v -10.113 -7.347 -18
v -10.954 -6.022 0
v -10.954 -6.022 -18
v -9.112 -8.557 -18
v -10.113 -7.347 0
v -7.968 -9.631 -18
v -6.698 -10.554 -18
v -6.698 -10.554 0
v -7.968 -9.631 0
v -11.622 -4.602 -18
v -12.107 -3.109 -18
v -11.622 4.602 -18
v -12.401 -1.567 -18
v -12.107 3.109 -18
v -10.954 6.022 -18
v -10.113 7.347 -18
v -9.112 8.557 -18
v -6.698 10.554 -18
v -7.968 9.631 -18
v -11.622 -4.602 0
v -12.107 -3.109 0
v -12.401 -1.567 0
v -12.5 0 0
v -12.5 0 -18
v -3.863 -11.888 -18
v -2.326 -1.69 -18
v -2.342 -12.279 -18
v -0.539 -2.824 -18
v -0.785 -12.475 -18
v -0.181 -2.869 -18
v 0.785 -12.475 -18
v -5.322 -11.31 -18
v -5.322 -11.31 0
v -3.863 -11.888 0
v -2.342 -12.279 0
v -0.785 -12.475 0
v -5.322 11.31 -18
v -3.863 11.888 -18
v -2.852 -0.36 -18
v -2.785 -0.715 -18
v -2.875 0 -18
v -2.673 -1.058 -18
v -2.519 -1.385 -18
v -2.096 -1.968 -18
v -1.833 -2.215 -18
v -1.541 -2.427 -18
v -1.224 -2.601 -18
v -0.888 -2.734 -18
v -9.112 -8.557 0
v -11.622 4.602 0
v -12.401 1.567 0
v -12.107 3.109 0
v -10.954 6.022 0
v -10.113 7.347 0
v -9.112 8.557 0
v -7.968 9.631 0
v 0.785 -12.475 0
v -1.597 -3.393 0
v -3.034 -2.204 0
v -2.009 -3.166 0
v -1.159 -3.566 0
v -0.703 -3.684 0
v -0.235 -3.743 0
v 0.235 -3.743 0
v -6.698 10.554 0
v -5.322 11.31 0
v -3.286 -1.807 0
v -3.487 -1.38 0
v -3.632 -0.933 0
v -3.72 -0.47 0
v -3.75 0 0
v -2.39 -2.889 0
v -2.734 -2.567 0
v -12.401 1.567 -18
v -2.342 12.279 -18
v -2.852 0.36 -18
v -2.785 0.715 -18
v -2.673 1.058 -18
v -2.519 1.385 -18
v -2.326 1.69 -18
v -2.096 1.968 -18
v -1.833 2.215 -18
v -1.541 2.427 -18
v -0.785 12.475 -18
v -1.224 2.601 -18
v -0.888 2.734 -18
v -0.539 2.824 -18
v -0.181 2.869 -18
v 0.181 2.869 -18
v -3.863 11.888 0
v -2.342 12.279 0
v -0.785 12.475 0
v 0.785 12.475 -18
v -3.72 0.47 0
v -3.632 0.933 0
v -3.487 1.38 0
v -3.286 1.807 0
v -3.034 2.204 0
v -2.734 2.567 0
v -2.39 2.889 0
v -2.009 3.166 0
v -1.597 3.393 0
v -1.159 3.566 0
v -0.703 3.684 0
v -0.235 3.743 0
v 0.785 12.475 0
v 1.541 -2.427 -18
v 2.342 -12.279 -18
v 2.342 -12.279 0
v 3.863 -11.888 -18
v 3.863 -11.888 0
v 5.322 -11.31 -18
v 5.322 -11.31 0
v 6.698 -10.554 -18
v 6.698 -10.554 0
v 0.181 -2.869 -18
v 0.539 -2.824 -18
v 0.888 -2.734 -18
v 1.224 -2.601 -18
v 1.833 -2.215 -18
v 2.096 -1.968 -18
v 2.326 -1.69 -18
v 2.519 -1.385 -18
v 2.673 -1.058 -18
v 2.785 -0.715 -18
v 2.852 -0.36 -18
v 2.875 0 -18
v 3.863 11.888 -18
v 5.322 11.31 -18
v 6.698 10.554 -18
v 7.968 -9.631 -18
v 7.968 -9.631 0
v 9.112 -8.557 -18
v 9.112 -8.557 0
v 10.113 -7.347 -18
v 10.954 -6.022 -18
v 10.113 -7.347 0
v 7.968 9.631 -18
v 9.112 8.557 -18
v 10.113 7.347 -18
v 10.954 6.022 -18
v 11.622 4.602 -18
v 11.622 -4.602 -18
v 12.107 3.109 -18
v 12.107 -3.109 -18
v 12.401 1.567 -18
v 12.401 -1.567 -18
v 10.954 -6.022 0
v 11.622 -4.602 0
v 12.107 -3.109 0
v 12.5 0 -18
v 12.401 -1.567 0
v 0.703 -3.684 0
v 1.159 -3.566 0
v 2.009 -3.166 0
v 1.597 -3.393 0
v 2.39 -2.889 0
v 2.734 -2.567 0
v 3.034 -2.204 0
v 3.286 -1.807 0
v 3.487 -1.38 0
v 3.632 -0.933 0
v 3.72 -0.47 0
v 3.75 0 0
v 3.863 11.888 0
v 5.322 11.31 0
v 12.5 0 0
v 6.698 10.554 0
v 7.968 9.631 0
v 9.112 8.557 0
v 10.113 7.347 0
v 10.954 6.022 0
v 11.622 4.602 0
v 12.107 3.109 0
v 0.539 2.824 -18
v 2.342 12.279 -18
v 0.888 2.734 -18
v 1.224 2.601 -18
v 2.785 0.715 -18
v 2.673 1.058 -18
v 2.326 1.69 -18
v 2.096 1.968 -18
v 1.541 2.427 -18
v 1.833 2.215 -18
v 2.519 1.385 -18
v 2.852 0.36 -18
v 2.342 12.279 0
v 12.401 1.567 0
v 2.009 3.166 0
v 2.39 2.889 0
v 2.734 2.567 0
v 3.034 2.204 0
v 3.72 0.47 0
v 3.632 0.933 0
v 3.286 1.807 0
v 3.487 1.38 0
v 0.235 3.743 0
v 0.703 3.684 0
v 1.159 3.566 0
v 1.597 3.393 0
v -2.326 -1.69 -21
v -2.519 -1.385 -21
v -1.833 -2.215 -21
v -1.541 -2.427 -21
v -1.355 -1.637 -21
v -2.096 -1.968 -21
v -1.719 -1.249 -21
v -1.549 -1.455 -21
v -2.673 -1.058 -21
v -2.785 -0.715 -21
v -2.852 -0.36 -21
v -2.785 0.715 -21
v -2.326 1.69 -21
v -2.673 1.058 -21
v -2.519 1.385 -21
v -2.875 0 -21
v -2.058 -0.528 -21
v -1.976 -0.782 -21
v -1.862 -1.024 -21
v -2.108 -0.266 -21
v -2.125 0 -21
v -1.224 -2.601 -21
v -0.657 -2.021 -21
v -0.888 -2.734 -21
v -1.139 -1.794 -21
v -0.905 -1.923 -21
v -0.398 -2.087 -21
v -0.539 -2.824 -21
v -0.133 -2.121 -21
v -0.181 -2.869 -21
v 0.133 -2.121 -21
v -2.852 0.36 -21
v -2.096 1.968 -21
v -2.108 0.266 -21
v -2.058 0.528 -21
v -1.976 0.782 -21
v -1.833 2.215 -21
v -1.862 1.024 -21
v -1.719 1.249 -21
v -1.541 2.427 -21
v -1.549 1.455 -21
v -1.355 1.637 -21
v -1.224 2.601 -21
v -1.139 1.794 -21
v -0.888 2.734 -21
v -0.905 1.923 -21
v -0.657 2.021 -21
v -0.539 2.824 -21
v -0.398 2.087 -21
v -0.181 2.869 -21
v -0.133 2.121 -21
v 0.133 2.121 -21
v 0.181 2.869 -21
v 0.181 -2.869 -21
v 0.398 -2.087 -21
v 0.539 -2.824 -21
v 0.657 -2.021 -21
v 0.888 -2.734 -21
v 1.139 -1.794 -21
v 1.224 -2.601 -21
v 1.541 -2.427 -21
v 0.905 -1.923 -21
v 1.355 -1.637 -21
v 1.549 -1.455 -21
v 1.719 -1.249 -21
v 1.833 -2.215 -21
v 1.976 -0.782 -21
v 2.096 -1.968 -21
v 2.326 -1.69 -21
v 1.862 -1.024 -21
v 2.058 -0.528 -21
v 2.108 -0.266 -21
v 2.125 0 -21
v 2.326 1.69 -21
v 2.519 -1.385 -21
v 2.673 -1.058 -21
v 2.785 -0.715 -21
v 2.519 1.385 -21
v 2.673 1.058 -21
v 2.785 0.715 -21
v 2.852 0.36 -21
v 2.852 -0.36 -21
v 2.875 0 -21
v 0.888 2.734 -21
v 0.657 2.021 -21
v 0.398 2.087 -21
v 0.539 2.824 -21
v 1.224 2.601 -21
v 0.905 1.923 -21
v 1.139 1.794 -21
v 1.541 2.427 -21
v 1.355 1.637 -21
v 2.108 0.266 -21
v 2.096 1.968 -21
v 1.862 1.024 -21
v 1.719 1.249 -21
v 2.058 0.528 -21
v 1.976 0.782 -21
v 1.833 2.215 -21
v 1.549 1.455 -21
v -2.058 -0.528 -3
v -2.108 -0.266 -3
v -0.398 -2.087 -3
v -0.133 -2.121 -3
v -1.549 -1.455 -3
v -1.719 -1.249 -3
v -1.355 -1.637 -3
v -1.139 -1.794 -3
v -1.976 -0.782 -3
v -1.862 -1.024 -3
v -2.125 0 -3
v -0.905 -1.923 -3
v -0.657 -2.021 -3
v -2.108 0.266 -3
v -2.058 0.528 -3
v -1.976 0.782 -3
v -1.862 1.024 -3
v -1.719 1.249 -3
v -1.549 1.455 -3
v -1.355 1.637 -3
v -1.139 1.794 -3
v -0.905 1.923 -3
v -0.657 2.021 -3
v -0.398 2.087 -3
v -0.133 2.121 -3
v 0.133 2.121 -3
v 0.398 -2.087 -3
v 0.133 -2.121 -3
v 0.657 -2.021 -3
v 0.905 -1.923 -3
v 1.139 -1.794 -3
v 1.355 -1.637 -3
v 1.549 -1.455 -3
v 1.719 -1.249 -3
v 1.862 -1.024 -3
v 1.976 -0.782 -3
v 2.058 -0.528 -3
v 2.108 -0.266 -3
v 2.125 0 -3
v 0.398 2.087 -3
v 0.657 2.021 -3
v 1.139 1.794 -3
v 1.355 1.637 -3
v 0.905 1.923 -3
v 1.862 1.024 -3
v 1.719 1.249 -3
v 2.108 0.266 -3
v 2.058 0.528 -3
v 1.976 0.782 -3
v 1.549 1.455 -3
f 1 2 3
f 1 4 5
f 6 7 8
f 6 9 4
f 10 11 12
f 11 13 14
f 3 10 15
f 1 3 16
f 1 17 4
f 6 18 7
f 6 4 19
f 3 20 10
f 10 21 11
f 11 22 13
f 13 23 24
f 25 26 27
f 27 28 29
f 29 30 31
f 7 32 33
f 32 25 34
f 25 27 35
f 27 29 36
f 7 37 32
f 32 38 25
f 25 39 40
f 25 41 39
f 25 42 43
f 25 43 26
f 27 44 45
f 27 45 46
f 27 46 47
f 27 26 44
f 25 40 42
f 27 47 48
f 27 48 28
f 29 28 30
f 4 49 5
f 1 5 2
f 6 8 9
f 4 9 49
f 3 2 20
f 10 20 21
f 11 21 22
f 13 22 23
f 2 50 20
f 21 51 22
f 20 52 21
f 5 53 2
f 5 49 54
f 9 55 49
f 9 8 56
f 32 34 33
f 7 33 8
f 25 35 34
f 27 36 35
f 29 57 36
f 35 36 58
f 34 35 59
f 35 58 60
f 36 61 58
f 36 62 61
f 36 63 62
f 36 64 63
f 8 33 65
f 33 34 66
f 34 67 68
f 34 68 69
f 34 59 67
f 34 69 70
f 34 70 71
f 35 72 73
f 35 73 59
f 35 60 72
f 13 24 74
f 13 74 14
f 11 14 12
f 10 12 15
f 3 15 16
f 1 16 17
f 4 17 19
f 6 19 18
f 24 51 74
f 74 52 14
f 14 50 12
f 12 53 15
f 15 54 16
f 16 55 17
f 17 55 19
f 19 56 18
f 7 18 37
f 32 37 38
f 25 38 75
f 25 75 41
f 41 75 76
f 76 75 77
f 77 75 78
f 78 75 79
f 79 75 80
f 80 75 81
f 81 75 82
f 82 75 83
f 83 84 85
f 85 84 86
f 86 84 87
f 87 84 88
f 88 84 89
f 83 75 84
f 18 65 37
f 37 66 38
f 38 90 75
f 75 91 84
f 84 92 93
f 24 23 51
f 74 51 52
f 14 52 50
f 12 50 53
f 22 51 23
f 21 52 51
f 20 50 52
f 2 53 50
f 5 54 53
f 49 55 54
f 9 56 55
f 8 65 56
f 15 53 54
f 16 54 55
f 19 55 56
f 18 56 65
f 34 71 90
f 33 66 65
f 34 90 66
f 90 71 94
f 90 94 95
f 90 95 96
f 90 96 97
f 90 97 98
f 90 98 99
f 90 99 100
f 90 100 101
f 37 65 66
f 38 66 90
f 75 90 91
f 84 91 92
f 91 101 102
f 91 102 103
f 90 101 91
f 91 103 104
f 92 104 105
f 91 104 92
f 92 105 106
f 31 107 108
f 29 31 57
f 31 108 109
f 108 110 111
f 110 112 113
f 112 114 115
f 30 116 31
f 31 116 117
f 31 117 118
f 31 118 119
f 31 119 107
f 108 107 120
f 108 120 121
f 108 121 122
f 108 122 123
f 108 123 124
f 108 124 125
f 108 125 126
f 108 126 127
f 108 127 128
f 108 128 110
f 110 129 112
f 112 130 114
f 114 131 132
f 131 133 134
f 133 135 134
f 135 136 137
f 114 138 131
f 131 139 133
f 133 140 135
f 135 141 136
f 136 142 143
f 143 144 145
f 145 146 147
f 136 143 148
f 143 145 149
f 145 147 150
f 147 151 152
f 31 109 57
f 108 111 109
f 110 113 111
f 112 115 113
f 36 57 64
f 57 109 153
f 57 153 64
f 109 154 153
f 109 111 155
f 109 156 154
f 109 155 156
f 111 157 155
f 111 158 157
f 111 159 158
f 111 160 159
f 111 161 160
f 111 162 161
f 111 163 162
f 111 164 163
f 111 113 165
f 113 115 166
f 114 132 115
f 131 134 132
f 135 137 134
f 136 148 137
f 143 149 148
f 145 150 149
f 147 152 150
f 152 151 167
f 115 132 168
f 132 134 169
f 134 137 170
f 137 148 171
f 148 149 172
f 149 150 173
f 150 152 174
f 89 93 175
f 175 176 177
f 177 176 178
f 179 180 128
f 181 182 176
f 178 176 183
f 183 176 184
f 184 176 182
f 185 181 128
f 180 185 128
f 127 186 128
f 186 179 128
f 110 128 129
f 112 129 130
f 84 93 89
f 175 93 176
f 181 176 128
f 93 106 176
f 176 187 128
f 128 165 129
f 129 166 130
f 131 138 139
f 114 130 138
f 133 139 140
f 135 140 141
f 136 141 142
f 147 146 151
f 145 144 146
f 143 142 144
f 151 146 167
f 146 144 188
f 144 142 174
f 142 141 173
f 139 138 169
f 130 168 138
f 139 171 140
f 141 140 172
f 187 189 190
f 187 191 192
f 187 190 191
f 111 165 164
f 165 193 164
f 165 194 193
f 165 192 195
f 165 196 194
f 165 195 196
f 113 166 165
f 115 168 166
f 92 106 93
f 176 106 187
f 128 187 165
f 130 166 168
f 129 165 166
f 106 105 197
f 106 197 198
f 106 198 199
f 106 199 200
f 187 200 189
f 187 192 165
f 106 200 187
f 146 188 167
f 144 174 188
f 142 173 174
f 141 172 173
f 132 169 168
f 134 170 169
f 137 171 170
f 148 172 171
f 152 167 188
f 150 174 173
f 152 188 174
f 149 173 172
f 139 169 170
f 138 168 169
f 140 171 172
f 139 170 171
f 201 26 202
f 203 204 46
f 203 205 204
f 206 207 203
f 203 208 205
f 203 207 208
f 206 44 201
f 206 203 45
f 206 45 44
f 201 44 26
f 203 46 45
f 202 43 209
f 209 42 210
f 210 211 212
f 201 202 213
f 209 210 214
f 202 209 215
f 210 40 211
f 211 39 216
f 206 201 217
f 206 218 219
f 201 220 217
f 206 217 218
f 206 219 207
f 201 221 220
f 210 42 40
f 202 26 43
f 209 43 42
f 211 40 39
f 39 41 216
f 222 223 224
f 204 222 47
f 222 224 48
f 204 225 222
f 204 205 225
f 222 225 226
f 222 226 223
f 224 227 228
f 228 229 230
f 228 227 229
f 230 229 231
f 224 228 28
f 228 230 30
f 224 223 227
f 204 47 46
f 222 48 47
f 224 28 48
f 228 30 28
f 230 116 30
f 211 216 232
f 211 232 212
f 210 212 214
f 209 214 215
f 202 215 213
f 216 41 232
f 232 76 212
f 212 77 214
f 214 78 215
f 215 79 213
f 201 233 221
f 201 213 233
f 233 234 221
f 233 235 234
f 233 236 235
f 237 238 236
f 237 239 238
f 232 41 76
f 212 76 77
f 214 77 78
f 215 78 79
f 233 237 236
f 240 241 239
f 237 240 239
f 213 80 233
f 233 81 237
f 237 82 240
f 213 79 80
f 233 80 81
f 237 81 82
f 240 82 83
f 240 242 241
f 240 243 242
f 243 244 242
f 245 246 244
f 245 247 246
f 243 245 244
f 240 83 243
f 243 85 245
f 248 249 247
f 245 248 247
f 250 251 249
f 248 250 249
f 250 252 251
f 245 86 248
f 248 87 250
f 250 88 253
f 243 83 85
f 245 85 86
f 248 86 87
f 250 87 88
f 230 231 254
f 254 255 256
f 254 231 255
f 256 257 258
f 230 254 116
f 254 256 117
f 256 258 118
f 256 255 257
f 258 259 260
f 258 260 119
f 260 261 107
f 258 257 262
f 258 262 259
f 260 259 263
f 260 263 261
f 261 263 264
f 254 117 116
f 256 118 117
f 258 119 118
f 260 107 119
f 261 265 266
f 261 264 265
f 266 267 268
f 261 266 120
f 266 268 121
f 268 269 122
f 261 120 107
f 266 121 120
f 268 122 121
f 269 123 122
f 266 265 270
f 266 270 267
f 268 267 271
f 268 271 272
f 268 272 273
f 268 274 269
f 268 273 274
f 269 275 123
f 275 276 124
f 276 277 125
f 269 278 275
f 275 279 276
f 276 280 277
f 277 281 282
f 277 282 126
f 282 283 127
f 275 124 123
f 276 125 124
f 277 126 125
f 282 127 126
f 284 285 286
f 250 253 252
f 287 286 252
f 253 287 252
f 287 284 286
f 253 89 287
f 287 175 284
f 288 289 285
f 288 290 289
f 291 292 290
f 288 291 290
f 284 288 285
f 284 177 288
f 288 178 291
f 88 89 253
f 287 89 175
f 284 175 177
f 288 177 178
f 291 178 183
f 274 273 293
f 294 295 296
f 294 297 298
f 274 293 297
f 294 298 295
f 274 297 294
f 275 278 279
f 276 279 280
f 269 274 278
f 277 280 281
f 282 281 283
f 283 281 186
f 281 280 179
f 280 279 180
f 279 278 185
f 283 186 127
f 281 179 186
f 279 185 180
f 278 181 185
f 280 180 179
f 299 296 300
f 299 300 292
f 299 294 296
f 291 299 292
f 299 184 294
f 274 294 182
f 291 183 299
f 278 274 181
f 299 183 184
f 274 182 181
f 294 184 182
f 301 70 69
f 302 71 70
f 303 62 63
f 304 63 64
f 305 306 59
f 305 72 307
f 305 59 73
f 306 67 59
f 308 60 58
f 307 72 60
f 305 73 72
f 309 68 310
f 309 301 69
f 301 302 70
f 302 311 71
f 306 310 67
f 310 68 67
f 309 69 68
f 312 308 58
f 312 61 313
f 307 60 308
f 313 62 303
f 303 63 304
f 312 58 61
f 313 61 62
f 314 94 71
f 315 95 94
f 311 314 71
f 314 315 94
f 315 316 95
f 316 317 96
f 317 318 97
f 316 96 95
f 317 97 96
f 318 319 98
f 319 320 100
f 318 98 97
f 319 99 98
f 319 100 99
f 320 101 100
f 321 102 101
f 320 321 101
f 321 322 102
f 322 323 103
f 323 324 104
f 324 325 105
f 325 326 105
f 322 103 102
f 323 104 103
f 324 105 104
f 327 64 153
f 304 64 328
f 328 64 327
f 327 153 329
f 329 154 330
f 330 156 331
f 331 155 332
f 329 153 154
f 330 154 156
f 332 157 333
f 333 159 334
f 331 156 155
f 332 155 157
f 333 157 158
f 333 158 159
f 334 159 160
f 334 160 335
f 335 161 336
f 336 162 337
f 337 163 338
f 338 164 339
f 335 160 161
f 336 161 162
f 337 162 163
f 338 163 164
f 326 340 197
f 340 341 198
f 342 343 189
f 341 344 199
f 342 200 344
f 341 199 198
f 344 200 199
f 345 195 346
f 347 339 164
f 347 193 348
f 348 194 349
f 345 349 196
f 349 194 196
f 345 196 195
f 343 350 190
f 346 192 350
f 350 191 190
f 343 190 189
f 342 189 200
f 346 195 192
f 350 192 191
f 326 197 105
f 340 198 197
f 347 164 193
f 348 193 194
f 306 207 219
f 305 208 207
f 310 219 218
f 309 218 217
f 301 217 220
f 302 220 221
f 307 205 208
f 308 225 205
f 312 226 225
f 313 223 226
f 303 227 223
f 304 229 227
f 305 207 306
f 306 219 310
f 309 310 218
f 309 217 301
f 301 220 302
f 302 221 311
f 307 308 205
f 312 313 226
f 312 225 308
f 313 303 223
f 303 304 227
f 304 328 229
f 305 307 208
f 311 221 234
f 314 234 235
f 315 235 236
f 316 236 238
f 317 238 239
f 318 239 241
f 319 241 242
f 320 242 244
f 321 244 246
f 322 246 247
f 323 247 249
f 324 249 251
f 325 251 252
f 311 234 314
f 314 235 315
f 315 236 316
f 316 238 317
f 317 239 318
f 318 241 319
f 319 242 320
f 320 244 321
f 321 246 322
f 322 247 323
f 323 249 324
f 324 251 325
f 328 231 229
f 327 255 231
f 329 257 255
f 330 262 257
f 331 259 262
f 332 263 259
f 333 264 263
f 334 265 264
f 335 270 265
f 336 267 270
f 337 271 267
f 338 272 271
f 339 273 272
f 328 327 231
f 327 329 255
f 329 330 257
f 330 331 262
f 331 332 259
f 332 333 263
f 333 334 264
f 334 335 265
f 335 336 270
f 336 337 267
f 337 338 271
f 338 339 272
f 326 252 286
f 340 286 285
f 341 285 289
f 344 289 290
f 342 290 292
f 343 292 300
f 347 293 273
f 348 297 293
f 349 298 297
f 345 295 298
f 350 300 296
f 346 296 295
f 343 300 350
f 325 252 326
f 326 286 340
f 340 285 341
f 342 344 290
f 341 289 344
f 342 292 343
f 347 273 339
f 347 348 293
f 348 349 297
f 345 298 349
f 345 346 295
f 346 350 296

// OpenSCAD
$fn = 50;


difference() {
	union() {
		translate(v = [0, 0, -18.0000000000]) {
			cylinder(h = 18, r = 12.5000000000);
		}
		#translate(v = [0, 0, -21.0000000000]) {
			cylinder(h = 21, r = 2.8750000000);
		}
	}
	union() {
		translate(v = [0, 0, 0]) {
			rotate(a = [0, 0, 0]) {
				difference() {
					union() {
						translate(v = [0, 0, -21.0000000000]) {
							cylinder(h = 21, r = 2.0000000000);
						}
						translate(v = [0, 0, -3]) {
							cylinder(h = 3, r1 = 2.1250000000, r2 = 3.7500000000);
						}
						translate(v = [0, 0, -21.0000000000]) {
							cylinder(h = 21, r = 2.1250000000);
						}
						translate(v = [0, 0, -21.0000000000]) {
							cylinder(h = 21, r = 2.0000000000);
						}
					}
					union();
				}
			}
		}
	}
}
